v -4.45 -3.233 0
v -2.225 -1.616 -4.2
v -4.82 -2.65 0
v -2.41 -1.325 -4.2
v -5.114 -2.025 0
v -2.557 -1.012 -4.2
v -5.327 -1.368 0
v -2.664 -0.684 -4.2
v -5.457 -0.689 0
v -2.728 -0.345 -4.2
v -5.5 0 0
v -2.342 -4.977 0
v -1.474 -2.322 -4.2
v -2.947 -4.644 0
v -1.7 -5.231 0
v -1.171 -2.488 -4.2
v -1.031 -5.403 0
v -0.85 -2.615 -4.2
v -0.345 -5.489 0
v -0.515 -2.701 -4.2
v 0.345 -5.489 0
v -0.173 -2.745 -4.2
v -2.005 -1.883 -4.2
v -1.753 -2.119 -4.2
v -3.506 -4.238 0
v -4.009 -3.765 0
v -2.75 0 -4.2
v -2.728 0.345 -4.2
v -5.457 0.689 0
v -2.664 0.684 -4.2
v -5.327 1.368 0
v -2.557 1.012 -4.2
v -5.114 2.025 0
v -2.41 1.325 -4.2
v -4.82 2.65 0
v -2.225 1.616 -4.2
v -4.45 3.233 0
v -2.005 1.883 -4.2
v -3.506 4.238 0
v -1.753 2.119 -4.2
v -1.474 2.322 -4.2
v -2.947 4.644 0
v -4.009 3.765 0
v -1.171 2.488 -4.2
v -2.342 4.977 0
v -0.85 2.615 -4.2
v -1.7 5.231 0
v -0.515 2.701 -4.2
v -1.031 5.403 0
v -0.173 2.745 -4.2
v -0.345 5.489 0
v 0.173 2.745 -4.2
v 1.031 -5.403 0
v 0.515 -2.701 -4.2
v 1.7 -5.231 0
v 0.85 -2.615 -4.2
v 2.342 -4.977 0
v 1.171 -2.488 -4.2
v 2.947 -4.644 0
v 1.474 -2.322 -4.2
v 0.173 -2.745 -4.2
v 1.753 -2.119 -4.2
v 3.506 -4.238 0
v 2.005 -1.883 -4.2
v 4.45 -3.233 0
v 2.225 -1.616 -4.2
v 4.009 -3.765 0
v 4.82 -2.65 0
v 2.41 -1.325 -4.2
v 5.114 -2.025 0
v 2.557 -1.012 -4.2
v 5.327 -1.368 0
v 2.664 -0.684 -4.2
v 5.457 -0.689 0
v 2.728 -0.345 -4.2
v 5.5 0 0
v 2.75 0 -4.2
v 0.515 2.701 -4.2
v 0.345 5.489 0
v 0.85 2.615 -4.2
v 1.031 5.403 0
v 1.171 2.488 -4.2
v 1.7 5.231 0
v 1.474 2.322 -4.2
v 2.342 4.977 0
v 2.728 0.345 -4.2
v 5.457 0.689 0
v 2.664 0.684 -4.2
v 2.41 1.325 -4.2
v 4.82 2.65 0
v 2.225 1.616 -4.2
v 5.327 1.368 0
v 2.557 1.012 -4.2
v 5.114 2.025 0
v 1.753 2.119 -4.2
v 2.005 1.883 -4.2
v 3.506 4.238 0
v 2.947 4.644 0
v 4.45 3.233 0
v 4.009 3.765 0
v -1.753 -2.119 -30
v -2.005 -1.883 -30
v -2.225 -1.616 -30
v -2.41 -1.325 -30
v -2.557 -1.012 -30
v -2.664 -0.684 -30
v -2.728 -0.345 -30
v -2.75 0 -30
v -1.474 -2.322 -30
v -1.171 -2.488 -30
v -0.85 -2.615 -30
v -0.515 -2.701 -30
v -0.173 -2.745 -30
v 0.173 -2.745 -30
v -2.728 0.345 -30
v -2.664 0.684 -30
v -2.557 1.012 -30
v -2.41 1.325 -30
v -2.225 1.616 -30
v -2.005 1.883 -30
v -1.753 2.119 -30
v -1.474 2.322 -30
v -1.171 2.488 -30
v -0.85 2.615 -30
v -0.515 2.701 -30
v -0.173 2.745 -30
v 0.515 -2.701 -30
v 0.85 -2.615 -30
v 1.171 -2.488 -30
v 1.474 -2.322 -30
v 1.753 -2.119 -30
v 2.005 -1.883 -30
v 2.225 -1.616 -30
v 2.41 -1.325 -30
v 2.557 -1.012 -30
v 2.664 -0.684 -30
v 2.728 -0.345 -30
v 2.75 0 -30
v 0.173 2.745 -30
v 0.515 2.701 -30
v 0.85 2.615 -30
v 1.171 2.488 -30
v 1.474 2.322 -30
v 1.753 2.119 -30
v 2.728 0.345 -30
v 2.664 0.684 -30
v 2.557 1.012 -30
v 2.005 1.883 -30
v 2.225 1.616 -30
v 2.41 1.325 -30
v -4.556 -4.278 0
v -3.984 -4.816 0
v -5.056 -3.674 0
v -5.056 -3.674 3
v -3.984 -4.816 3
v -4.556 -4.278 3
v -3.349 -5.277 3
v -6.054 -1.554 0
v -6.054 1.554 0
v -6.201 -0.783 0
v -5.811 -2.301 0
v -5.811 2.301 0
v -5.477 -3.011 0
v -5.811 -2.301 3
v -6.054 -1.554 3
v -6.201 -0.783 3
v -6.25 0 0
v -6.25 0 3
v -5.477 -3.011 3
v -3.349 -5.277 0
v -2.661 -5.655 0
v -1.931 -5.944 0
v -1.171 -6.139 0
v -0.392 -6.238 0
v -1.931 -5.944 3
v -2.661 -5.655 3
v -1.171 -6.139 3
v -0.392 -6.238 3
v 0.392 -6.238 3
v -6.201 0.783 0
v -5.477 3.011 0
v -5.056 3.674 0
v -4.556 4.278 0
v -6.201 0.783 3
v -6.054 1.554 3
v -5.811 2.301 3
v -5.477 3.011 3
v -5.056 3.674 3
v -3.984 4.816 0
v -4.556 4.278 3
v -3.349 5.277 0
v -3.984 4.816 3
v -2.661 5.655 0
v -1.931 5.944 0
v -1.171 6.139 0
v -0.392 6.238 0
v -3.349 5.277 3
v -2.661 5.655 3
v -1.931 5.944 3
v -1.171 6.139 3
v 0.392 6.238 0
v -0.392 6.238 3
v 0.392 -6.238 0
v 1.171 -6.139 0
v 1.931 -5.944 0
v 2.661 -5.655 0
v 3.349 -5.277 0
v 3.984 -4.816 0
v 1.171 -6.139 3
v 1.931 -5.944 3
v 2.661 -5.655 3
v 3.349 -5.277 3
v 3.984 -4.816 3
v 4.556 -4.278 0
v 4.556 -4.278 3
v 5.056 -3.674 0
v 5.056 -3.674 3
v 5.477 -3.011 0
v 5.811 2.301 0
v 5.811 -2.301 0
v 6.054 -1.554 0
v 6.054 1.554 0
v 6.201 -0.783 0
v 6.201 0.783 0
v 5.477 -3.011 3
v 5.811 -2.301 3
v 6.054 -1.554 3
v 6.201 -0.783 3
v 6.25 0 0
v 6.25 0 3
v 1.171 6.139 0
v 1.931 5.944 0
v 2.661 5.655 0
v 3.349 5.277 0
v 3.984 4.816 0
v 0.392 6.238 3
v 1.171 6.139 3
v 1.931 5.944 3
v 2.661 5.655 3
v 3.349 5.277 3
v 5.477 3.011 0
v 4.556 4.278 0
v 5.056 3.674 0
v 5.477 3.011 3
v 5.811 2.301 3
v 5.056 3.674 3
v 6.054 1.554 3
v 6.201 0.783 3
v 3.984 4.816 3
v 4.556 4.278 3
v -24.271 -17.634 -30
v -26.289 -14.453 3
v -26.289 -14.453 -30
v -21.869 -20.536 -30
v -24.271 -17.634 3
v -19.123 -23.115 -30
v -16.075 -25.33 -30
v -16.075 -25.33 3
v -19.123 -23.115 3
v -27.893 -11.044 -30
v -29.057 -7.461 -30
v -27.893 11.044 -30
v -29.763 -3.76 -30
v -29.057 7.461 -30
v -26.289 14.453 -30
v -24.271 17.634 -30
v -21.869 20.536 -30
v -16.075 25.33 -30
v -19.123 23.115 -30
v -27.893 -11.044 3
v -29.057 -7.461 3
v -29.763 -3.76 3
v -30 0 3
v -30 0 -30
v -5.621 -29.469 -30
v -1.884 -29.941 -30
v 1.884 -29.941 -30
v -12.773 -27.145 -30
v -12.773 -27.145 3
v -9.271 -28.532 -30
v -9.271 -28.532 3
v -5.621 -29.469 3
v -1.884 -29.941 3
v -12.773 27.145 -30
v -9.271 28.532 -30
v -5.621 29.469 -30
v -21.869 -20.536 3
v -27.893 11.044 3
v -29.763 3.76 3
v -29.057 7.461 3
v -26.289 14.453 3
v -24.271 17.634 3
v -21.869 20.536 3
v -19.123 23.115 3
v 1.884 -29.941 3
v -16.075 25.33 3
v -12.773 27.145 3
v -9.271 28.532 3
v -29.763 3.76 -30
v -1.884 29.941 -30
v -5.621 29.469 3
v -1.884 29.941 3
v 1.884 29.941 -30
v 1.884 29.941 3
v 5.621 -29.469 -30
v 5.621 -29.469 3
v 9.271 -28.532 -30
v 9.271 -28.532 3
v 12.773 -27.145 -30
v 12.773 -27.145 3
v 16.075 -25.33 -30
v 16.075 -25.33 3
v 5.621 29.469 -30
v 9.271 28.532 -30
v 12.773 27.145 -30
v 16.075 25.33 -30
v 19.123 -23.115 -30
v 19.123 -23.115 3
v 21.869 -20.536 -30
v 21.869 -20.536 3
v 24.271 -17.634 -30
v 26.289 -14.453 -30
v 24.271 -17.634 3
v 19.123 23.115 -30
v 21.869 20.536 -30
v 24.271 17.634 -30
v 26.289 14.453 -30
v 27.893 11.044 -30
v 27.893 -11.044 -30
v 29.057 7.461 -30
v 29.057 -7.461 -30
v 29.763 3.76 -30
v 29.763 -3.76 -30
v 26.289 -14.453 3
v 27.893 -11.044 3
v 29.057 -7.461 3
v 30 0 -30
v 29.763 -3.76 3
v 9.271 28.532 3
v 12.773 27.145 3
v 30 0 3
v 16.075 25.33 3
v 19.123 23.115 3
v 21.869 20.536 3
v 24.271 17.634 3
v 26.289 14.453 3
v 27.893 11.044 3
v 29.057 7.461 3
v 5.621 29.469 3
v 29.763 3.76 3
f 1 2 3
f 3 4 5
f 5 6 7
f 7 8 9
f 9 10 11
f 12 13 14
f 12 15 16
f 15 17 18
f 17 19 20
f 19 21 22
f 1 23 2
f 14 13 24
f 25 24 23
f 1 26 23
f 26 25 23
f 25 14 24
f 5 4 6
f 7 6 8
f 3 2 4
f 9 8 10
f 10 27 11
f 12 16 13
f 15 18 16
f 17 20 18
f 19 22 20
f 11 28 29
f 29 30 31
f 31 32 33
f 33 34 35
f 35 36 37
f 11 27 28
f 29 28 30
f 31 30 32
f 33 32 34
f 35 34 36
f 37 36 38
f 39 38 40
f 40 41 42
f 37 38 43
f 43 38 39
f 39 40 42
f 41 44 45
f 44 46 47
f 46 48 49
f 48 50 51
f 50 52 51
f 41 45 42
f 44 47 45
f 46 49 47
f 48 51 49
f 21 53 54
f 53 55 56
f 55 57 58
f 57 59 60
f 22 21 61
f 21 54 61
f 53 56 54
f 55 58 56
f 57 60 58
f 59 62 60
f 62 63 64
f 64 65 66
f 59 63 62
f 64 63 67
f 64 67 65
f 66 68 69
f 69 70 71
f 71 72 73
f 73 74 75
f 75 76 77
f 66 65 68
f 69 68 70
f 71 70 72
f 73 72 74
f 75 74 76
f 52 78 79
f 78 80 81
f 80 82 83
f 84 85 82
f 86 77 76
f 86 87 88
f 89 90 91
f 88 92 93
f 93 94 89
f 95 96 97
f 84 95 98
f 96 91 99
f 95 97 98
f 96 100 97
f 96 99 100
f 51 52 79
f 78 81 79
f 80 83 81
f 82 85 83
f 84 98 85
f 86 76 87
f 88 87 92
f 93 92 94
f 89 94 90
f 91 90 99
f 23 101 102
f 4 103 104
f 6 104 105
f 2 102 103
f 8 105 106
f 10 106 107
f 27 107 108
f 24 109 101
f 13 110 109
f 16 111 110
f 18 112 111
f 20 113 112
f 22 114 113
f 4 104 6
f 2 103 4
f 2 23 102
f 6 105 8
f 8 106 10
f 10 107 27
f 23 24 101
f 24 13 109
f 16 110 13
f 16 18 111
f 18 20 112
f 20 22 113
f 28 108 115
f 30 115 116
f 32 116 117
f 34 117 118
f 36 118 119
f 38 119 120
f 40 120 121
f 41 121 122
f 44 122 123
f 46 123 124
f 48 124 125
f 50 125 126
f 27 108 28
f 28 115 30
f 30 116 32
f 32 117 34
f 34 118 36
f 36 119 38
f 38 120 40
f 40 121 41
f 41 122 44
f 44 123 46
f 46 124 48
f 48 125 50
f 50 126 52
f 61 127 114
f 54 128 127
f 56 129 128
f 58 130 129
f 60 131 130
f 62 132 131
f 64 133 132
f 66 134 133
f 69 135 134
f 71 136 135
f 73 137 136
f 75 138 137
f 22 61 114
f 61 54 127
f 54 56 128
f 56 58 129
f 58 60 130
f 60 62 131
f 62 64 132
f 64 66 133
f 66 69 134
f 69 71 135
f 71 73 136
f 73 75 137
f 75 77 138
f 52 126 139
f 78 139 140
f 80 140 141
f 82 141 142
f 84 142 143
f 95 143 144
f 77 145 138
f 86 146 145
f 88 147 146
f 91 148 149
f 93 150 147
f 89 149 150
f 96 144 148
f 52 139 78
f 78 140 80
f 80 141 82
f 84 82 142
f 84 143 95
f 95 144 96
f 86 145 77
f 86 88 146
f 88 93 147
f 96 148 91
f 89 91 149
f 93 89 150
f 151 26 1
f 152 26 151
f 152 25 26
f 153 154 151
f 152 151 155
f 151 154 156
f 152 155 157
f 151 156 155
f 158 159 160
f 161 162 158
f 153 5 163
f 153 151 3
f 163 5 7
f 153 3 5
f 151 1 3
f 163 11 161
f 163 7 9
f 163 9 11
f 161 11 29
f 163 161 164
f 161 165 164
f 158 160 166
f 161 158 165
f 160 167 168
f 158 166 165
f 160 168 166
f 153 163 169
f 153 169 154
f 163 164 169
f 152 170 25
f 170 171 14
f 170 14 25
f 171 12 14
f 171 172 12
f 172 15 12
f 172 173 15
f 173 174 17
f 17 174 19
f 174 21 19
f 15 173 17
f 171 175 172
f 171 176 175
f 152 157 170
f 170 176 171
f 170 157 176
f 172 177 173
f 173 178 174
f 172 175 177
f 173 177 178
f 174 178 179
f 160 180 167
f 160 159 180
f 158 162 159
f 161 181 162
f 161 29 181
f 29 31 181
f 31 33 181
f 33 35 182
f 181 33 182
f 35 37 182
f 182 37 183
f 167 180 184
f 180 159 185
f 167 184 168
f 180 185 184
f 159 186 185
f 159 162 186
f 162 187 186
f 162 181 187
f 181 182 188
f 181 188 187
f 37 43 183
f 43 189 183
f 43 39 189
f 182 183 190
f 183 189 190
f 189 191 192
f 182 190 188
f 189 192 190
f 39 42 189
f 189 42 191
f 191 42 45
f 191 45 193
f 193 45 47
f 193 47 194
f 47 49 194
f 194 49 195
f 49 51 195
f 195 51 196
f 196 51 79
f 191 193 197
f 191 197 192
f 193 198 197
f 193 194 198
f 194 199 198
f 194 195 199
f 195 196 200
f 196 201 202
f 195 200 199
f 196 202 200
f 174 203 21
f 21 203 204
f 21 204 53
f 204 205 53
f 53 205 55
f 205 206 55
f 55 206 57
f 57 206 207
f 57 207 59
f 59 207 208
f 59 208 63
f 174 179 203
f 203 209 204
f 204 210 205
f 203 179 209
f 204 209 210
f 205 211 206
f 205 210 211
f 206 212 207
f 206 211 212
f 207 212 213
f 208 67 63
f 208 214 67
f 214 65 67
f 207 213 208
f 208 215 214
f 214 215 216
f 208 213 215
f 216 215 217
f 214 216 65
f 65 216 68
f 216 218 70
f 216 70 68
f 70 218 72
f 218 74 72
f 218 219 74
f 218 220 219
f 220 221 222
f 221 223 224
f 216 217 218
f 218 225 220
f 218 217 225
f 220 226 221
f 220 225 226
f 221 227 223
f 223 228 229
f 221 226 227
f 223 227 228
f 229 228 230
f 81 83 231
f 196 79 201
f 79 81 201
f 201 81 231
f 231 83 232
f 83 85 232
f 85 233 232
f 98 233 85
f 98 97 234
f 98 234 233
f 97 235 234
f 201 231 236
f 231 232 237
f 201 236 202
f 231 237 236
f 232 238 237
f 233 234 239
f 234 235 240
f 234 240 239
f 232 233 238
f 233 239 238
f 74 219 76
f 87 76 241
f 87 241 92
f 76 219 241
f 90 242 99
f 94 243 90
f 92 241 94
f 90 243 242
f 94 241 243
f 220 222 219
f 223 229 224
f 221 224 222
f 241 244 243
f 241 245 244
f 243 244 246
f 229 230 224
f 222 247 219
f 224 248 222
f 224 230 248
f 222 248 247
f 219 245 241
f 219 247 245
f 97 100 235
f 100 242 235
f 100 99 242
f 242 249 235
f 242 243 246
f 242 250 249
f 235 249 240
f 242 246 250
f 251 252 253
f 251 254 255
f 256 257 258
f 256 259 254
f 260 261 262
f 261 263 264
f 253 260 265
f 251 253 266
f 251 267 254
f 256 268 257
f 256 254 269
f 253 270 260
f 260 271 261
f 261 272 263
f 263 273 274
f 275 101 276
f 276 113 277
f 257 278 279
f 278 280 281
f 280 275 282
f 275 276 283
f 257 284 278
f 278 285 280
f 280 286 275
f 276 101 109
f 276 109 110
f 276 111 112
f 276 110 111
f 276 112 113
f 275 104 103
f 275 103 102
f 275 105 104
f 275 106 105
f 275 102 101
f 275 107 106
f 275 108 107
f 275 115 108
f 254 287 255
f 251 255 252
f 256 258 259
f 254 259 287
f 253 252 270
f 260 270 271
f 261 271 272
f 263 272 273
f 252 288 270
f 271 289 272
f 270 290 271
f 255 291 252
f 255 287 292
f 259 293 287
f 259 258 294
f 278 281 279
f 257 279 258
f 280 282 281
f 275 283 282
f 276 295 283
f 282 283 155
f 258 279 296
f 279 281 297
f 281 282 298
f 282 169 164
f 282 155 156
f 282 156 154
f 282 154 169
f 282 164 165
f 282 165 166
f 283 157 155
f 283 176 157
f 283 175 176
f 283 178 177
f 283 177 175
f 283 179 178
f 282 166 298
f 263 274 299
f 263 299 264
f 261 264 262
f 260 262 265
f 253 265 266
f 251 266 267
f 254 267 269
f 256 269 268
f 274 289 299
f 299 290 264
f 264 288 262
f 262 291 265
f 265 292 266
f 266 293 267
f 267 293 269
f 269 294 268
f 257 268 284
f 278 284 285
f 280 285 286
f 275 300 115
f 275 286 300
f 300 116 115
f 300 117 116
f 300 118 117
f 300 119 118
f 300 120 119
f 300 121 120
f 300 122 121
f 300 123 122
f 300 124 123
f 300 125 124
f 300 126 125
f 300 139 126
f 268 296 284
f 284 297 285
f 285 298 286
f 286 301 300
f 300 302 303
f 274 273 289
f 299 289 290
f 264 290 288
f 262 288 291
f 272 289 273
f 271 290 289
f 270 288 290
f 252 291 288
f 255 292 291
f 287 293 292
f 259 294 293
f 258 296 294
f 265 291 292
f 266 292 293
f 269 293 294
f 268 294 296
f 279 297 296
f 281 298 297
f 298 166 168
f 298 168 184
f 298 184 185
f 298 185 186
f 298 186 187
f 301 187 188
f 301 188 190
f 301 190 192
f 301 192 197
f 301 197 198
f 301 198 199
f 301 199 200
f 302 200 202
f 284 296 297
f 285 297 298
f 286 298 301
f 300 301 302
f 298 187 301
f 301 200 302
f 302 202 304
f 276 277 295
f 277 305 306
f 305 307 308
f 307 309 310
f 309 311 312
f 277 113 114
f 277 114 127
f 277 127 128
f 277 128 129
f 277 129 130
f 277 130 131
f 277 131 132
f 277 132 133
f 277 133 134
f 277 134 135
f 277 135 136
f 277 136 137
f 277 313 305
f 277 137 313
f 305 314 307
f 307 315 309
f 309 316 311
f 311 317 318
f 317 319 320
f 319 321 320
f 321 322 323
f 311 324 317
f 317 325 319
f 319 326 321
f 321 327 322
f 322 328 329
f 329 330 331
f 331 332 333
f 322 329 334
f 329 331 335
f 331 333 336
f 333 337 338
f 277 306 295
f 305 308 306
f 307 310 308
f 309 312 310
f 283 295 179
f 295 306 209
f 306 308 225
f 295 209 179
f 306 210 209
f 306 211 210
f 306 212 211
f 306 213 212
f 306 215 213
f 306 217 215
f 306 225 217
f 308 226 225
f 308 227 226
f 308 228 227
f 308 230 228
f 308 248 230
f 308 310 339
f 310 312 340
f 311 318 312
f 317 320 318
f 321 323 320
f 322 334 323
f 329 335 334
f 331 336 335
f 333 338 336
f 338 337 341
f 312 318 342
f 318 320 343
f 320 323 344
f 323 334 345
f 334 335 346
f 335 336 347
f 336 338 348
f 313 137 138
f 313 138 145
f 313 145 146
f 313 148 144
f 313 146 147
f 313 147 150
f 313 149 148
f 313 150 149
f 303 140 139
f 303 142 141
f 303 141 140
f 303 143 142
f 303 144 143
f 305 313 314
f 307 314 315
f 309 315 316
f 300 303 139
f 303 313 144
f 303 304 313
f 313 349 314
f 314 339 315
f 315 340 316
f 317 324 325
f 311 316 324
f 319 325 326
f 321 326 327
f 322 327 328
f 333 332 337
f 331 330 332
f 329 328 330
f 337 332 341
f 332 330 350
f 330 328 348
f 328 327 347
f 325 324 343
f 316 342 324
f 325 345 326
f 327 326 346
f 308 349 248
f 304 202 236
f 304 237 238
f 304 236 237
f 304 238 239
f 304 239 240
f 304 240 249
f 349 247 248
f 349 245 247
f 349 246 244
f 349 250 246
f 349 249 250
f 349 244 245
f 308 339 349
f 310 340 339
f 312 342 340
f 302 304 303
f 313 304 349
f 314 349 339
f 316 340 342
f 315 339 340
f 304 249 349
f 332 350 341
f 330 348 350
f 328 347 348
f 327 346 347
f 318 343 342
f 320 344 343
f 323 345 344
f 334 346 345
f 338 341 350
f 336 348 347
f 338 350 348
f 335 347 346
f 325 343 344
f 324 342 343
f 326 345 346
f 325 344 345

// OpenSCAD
$fn = 50;


difference() {
	union() {
		translate(v = [0, 0, -30.0000000000]) {
			cylinder(h = 33, r = 30.0000000000);
		}
	}
	union() {
		translate(v = [0, 0, 0]) {
			rotate(a = [0, 0, 0]) {
				difference() {
					union() {
						translate(v = [0, 0, -33.0000000000]) {
							cylinder(h = 33, r = 2.2500000000);
						}
						translate(v = [0, 0, -4.2000000000]) {
							cylinder(h = 4.2000000000, r1 = 2.7500000000, r2 = 5.5000000000);
						}
						translate(v = [0, 0, -33.0000000000]) {
							cylinder(h = 33, r = 2.7500000000);
						}
						translate(v = [0, 0, -33.0000000000]) {
							cylinder(h = 33, r = 2.2500000000);
						}
					}
					union();
				}
			}
		}
		#cylinder(h = 3, r = 6.2500000000);
	}
}
